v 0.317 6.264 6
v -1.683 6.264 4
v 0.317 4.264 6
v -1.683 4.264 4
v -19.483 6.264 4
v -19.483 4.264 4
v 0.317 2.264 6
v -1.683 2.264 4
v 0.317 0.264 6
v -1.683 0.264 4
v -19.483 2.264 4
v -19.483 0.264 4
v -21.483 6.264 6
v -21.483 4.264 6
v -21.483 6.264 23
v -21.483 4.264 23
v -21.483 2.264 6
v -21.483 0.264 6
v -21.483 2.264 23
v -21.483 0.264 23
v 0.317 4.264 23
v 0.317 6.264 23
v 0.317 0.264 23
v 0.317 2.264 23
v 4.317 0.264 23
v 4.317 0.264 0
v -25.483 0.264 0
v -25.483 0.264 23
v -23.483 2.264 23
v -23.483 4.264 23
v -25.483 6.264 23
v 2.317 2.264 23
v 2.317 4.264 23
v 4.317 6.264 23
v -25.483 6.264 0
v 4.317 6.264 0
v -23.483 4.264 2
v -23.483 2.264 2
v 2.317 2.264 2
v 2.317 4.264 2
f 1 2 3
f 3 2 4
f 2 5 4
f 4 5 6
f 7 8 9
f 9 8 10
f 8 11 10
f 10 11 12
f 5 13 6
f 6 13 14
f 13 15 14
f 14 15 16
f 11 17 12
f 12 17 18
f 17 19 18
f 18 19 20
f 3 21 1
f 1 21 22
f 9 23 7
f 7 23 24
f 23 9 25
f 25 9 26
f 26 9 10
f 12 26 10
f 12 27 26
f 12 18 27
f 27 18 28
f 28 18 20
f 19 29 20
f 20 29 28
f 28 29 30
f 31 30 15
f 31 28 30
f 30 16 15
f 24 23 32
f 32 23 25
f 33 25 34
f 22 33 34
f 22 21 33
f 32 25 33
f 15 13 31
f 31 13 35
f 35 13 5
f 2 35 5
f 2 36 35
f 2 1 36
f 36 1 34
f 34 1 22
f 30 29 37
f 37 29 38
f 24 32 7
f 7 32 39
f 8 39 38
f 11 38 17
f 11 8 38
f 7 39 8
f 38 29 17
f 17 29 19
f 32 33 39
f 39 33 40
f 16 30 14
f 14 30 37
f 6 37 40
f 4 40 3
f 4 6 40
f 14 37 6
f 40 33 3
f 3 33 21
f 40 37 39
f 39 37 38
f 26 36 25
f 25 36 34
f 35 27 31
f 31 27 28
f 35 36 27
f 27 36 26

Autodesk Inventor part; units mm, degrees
ref_plane "YZ Plane" through (0, 0, 0) normal (1, 0, 0) x (0, 1, 0)
ref_plane "XZ Plane" through (0, 0, 0) normal (0, 1, 0) x (-1, 0, 0)
ref_plane "XY Plane" through (0, 0, 0) normal (0, 0, 1) x (1, 0, 0)
sketch "Sketch1" plane through (0, 0, 0) normal (0, 0, 1) x (1, 0, 0)
  line L0 (-23.4826, 4.2639) -> (2.3174, 4.2639)
  line L1 (2.3174, 4.2639) -> (2.3174, 2.2639)
  line L2 (2.3174, 2.2639) -> (-23.4826, 2.2639)
  line L3 (-23.4826, 2.2639) -> (-23.4826, 4.2639)
  line L4 (-25.4826, 6.2639) -> (4.3174, 6.2639)
  line L5 (4.3174, 6.2639) -> (4.3174, 0.2639)
  line L6 (4.3174, 0.2639) -> (-25.4826, 0.2639)
  line L7 (-25.4826, 0.2639) -> (-25.4826, 6.2639)
  point P0 (0, 0)
  dimension "d0" = 25.8
  dimension "d1" = 2
  dimension "d4" = 2
  dimension "d5" = 2
  dimension "d6" = 2
  dimension "d7" = 2
extrude "Extrusion5" add sketch "Sketch1" along normal blind 23 contours L0 L1 L2 L3 | L4 L5 L6 L7
sketch "Sketch4" plane through (0, 0, 23) normal (0, 0, 1) x (1, 0, 0)
  line L0 (-23.4826, 4.2639) -> (2.3174, 4.2639)
  line L1 (2.3174, 4.2639) -> (2.3174, 2.2639)
  line L2 (2.3174, 2.2639) -> (-23.4826, 2.2639)
  line L3 (-23.4826, 2.2639) -> (-23.4826, 4.2639)
  line L4 (-25.4826, 6.2639) -> (-25.4826, 0.2639) projected
  line L5 (4.3174, 6.2639) -> (-25.4826, 6.2639) projected
  line L6 (-25.4826, 0.2639) -> (4.3174, 0.2639) projected
  line L7 (4.3174, 0.2639) -> (4.3174, 6.2639) projected
  point P0 (0, 0)
  dimension "d20" = 2
  dimension "d21" = 2
  dimension "d22" = 2
  dimension "d23" = 2
extrude "Extrusion6" cut sketch "Sketch4" against normal blind 21 contours L0 L1 L2 L3
sketch "Sketch5" plane through (-25.4826, 6.2639, 0) normal (0, 1, 0) x (1, 0, 0)
  line L0 (0, -23) -> (29.8, -23) projected
  line L1 (4, -4) -> (25.8, -4)
  line L2 (25.8, -4) -> (25.8, -23)
  line L3 (25.8, -23) -> (4, -23)
  line L4 (4, -23) -> (4, -4)
  line L5 (0, 0) -> (0, -23) projected
  line L6 (29.8, 0) -> (29.8, -23) projected
  line L7 (0, 0) -> (29.8, 0) projected
  point P0 (25.4826, 0)
  dimension "d26" = 4
  dimension "d27" = 4
  dimension "d28" = 4
extrude "Extrusion7" cut sketch "Sketch5" against normal through all contours L4 L1 L2 L0
chamfer "Chamfer1" distance 2 angle 45 4 edges at (-21.4826, 5.2639, 4) (-21.4826, 1.2639, 4) (0.3174, 5.2639, 4) (0.3174, 1.2639, 4)
properties part number "CameraHolder"
